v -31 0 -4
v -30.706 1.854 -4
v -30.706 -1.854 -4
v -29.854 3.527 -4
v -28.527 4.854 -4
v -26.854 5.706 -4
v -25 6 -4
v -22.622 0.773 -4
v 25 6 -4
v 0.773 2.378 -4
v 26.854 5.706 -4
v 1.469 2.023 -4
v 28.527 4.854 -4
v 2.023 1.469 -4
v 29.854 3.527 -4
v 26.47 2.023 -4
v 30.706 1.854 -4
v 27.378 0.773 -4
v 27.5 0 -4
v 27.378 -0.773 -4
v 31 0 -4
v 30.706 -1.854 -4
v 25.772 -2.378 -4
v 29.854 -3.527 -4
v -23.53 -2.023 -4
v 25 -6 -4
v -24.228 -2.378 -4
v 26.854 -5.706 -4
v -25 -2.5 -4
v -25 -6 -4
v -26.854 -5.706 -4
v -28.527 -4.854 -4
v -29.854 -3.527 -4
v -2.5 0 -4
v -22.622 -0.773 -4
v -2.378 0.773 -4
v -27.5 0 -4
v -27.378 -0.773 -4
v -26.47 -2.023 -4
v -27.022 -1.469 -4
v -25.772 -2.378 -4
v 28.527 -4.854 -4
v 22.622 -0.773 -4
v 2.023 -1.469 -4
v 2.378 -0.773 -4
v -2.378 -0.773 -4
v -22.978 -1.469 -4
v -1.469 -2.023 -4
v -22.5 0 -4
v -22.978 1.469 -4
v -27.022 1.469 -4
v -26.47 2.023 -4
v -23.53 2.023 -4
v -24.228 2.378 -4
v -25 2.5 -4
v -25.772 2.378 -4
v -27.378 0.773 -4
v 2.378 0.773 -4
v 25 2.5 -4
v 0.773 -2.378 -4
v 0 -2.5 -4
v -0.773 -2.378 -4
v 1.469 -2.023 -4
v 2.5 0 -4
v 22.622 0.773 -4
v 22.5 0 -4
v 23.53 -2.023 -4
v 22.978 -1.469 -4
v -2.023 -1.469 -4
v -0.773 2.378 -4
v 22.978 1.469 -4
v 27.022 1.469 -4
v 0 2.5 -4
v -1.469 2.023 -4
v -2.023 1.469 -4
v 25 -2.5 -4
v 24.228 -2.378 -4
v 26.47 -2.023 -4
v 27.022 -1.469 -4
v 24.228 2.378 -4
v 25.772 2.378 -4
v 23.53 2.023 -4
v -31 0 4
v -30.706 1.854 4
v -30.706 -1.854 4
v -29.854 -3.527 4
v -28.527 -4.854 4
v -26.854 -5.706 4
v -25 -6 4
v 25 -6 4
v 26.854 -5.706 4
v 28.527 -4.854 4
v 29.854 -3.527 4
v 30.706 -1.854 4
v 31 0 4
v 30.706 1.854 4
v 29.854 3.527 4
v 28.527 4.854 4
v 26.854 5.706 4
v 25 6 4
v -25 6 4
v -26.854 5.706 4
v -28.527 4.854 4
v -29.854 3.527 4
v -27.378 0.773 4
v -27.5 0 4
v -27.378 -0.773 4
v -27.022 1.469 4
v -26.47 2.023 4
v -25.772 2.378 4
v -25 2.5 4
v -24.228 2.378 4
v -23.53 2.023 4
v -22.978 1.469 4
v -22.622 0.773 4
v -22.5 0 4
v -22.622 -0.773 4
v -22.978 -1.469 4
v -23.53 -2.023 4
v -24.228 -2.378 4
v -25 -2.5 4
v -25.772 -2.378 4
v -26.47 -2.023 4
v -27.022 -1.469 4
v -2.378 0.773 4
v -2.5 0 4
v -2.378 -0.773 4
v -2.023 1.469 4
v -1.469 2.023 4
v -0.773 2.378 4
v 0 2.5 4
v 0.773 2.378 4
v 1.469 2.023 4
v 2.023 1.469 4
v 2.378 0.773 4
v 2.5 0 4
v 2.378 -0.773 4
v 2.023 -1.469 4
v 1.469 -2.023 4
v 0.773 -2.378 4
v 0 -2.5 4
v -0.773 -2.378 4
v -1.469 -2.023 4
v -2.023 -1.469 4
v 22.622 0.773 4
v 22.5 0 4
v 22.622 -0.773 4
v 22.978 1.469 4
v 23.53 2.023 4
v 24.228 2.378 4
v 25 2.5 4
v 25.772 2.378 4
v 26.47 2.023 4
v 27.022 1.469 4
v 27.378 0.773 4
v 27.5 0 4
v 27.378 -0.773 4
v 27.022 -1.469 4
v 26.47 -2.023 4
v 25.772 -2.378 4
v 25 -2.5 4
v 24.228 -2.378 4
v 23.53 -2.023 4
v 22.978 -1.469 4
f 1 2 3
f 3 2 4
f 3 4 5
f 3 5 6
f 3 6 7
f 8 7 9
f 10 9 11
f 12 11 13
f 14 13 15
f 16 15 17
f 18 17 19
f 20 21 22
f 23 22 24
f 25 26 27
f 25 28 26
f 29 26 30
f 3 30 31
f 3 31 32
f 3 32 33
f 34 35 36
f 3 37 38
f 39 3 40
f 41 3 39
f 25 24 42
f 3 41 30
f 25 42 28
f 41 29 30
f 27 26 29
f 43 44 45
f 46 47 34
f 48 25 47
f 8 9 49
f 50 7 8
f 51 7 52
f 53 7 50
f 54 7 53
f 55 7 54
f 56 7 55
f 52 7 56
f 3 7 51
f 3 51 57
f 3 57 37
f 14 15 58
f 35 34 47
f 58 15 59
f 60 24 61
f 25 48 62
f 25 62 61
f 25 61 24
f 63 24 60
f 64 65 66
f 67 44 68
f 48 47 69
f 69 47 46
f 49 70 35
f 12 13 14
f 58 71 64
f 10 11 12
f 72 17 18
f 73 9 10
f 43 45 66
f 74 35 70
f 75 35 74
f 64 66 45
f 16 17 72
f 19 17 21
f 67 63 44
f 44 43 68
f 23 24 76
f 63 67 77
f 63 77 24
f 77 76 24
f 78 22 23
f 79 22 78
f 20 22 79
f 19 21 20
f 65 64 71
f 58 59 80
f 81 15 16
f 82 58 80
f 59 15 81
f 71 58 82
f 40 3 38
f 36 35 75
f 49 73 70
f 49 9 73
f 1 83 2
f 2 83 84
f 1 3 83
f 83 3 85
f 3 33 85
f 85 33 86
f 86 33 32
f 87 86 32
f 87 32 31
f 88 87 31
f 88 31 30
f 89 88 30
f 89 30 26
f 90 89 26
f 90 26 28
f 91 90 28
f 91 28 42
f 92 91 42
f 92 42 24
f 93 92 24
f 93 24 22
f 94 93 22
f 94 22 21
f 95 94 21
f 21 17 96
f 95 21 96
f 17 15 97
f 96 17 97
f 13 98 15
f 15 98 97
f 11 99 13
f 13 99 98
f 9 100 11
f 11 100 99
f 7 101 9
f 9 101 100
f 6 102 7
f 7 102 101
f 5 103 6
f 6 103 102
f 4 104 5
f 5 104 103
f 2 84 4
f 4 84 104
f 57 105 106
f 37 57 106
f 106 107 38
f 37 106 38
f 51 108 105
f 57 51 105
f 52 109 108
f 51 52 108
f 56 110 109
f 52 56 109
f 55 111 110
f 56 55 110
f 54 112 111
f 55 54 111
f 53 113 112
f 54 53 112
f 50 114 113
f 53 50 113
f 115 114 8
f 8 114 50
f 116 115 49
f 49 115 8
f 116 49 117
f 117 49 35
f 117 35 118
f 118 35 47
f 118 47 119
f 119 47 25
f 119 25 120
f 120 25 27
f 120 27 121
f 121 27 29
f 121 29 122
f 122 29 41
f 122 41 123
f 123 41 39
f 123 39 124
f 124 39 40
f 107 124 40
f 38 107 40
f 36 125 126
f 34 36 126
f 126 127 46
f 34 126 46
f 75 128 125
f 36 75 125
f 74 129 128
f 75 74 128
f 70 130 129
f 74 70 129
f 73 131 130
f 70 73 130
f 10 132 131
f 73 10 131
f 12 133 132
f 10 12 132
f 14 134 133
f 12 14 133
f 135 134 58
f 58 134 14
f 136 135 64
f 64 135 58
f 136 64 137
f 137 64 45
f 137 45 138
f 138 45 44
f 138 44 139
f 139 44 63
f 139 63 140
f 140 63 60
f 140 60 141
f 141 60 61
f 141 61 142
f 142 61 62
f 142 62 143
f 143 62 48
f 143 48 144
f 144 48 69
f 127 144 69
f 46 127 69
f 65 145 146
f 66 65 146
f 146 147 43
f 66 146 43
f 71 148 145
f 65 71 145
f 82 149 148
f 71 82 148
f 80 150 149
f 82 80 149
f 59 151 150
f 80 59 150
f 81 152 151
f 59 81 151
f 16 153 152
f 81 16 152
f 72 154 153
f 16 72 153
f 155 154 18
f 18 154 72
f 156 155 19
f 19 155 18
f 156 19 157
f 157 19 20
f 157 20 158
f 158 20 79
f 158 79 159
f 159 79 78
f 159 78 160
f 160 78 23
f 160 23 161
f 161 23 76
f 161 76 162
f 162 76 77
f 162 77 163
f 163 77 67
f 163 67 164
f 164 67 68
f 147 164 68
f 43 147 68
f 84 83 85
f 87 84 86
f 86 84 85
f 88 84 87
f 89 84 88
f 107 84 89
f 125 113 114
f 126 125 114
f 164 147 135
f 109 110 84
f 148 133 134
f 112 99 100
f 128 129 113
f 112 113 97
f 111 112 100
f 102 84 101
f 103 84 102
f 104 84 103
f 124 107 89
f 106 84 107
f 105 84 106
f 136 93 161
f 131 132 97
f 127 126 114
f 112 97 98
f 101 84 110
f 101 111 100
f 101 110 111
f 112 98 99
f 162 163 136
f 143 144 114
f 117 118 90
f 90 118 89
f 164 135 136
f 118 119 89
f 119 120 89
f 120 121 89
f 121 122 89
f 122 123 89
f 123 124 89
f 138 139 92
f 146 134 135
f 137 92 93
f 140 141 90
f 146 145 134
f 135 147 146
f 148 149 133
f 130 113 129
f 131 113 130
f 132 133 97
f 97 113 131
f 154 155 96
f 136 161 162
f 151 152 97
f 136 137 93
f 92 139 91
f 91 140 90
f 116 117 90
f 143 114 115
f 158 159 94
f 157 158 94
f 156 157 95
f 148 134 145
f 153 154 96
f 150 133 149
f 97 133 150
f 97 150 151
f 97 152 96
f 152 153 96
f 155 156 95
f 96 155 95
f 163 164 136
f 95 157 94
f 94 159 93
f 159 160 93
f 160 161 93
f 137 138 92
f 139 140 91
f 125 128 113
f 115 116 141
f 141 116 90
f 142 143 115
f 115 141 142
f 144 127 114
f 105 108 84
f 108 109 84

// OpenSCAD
// file: configuration.scad
//Configuration File
//Lets you adjust pretty much everything
//
//Makes it all super paramatric
//


//Configuration Block
$fn = 20;
module configBlock(){
	difference(){
		cube([15,30,10],center=true);

		union(){  //Vertical Holes
			translate([0,10,5]) rotate([0,0,0]) cylinder(r=M3/2,h=10,center=true);
			translate([0,3,5]) rotate([0,0,0]) cylinder(r=M4/2,h=10,center=true);
			translate([0,-8,5]) rotate([0,0,0]) cylinder(r=M8/2,h=10,center=true);
		}

		union(){  //Horizontal Holes
			translate([-8,10,0]) rotate([0,90,0]) cylinder(r=M3h/2,h=10,center=true);		
			translate([-8,3,0]) rotate([0,90,0]) cylinder(r=M4h/2,h=10,center=true);
			translate([-10,-6,0]) rotate([0,90,0]) cylinder(r=M3nut/2,h=10,center=true,$fn=6);

			translate([10,3,0]) rotate([0,90,0]) cylinder(r=M3washer/2,h=10,center=true);


			//translate([0,-8,0]) rotate([0,90,0]) cylinder(r=M8/2,h=10,center=true);
		}
	}
}

//configBlock();

//Bolts
M3 = 4;
M4 = 5;
M8 = 9;

M3h = 3.6;  //Horizontal versions
M4h = 5;  //Horizontal versions
M8h = 8; //Horizontal versions

//Nuts & Washers

M3washer = 7.4;
M3nut = 7.1;

//Size of other parts
rod = 8;  //Dimension of smooth rod
lm8uu = 16;

/*************************
 Printer Design files now
**************************/

//basic
arm_length = 100 ; //Length of the arms based on a planned 100x100 print size
pole_center = 60 ; //The pole distance from the center of the print
rod_sep = 25 + rod/2; // pole to pole seperation for one set. Includes rod length
rod_height = 260;

//motor end effector


//Universal joints
//holewidth = 6;
//arm_sep = 40;



//Hotend
// main file
include<configuration.scad>;

height= 8;

module bowden_cold(){
	difference(){
		hull(){
			//cube([65,15,height],center=true);
			translate([25,0,0]) cylinder(r=6,h=height,center=true);
			translate([-25,0,0]) cylinder(r=6,h=height,center=true);

			
		}

		cylinder(r=M4/2,h=10,center=true);	
		for(i=[-1:2:1]){
			translate([i*25,0,0]) cylinder(r=M4/2,h=10,center=true);	
		}
	}
}

bowden_cold();
